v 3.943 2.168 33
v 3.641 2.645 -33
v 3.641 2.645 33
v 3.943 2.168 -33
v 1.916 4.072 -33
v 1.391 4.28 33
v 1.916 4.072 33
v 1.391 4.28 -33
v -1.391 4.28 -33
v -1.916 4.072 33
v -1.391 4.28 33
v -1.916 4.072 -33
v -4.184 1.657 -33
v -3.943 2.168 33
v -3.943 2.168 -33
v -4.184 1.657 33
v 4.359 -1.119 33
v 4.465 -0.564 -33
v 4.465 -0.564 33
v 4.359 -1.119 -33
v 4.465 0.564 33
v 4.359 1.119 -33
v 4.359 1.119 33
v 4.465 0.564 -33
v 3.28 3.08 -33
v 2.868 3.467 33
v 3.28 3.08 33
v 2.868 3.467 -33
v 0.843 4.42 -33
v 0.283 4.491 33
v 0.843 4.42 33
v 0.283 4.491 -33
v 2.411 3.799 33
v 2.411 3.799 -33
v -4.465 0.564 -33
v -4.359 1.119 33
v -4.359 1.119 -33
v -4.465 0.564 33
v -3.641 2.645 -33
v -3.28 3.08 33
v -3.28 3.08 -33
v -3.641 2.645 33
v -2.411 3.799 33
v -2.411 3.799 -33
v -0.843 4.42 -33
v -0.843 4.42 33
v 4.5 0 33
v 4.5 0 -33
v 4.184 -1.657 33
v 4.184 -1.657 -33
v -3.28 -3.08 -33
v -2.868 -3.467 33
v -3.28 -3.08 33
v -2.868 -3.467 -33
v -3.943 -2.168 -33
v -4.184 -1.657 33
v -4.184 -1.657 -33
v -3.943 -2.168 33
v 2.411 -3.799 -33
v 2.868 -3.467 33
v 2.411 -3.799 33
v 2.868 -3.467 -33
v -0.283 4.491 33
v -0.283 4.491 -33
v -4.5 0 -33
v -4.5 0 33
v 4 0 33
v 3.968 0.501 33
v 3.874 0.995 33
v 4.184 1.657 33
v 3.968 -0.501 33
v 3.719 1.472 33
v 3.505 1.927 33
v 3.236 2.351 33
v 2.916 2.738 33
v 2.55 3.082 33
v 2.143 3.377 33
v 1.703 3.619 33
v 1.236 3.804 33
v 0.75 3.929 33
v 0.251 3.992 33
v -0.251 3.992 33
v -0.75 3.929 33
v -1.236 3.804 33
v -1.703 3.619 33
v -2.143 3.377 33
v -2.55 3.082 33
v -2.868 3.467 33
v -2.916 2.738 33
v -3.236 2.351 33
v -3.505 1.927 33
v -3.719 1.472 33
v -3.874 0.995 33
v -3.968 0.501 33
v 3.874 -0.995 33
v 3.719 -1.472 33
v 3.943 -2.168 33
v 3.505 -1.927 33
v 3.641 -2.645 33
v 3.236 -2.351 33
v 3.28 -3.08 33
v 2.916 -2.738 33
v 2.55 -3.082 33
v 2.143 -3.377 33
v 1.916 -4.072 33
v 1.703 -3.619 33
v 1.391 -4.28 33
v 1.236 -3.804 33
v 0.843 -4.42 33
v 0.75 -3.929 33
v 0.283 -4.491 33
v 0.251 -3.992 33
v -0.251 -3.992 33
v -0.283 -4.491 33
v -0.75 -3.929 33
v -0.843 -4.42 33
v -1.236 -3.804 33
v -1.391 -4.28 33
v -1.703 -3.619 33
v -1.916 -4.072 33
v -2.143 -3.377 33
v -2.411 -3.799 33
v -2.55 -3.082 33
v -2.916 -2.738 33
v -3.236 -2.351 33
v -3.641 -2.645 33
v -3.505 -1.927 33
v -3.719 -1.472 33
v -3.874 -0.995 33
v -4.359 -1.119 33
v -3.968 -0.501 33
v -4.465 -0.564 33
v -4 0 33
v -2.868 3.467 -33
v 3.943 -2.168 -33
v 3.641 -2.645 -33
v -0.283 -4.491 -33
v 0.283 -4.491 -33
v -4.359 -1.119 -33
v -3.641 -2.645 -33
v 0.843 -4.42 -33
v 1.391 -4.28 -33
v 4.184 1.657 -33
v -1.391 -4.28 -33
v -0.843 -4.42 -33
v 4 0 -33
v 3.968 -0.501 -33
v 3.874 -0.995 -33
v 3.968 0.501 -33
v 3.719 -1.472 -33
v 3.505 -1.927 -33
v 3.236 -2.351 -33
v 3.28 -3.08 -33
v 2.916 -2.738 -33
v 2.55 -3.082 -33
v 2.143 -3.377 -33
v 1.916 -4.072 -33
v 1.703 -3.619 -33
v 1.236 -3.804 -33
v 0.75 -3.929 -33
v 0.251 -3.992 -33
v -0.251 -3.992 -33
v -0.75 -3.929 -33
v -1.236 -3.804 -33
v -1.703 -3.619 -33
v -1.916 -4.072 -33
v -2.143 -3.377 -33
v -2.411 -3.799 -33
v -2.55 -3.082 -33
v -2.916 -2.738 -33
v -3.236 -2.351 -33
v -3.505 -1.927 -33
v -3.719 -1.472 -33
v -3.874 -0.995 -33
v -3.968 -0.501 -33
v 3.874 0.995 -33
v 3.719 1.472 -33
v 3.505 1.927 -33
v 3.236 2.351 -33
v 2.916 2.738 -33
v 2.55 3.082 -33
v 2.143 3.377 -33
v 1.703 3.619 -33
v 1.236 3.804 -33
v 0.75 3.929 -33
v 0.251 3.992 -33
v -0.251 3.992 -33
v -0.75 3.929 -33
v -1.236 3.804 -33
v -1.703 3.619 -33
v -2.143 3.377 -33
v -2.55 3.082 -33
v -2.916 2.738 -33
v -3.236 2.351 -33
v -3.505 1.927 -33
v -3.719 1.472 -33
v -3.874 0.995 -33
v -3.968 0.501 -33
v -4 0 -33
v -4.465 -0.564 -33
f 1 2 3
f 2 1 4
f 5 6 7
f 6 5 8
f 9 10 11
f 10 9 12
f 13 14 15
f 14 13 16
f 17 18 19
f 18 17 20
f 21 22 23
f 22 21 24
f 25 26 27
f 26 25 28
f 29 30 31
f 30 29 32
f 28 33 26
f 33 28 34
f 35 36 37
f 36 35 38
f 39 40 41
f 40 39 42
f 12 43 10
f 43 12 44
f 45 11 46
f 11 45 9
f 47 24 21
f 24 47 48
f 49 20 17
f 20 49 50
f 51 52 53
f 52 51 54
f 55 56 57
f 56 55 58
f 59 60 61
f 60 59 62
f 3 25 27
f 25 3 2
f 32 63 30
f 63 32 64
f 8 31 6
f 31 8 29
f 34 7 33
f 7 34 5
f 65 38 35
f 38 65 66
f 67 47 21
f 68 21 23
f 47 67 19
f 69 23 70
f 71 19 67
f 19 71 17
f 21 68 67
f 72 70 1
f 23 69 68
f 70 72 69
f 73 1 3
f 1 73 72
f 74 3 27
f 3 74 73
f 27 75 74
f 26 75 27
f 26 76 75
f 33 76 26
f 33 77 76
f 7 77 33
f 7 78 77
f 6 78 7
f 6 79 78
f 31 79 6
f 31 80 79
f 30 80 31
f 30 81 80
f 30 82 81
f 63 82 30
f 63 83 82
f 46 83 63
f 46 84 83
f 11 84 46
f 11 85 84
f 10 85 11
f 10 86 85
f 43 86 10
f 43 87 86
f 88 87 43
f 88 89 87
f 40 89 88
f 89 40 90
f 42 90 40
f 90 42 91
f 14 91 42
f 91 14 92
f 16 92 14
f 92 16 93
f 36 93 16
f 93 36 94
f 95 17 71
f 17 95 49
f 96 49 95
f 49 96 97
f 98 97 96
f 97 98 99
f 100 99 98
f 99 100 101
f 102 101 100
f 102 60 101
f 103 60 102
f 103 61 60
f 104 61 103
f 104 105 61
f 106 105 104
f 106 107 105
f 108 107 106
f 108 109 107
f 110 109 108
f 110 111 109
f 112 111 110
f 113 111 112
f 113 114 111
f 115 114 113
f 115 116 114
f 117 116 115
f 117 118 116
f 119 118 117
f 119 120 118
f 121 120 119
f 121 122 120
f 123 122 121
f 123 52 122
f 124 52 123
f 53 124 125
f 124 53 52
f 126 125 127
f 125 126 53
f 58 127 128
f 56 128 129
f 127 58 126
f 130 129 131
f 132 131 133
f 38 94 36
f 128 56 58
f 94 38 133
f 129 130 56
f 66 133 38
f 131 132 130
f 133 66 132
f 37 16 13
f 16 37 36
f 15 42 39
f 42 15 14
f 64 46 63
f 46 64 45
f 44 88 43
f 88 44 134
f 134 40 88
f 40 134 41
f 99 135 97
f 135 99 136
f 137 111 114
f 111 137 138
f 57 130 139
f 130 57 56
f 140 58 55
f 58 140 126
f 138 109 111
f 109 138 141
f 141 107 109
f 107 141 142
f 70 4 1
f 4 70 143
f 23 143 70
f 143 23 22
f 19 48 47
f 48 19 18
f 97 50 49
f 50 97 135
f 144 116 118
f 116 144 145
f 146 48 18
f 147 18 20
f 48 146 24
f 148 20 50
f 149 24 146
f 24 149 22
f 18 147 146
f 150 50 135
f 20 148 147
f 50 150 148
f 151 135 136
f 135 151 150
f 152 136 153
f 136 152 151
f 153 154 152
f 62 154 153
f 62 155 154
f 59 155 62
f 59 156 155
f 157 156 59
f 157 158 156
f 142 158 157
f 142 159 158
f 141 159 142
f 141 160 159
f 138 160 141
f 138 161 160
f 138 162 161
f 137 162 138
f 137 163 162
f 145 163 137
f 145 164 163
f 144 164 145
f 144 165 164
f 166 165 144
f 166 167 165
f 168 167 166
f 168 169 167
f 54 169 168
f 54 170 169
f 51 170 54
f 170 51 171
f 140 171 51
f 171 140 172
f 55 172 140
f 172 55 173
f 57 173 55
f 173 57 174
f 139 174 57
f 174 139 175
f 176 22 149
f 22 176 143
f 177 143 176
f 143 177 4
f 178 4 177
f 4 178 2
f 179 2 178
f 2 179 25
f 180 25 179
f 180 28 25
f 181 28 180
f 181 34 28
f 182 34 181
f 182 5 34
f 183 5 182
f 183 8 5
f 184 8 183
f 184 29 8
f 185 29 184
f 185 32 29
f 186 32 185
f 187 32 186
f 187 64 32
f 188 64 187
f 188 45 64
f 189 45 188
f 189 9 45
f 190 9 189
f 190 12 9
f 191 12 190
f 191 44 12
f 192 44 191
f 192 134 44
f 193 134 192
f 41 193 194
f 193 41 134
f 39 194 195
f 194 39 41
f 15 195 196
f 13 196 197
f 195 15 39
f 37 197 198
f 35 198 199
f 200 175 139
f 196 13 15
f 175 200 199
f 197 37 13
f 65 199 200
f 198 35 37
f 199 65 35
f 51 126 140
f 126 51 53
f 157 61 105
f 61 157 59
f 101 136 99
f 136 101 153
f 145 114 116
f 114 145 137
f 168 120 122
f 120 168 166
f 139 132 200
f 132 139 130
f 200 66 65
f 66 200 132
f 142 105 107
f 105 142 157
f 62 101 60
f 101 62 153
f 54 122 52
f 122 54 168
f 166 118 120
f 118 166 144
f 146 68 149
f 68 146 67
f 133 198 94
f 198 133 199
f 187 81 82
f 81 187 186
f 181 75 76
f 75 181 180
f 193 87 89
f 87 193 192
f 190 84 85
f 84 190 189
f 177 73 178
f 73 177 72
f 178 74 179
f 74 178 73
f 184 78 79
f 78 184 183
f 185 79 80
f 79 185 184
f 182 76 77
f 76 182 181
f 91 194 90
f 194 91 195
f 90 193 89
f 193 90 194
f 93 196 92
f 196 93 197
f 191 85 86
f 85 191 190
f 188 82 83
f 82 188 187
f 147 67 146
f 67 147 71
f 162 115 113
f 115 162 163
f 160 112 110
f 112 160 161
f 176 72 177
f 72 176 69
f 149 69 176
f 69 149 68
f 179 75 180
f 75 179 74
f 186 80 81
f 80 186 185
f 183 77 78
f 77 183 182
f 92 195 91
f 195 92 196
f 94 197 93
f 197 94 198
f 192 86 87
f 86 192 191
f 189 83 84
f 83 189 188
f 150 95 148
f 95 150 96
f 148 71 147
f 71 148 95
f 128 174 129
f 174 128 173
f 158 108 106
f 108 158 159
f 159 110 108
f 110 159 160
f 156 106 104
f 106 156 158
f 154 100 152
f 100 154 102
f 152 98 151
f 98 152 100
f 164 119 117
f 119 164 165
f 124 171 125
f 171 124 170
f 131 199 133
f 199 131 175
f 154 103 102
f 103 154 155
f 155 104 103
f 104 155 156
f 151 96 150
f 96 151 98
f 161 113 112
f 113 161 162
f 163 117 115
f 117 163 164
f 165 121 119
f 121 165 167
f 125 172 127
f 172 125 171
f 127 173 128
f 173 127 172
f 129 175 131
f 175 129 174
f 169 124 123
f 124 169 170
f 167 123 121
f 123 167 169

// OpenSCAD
$fn = 50;


difference() {
	union() {
		translate(v = [0, 0, -33.0000000000]) {
			cylinder(h = 66, r = 4.5000000000);
		}
	}
	union() {
		translate(v = [0, 0, -100.0000000000]) {
			cylinder(h = 200, r = 4);
		}
	}
}
